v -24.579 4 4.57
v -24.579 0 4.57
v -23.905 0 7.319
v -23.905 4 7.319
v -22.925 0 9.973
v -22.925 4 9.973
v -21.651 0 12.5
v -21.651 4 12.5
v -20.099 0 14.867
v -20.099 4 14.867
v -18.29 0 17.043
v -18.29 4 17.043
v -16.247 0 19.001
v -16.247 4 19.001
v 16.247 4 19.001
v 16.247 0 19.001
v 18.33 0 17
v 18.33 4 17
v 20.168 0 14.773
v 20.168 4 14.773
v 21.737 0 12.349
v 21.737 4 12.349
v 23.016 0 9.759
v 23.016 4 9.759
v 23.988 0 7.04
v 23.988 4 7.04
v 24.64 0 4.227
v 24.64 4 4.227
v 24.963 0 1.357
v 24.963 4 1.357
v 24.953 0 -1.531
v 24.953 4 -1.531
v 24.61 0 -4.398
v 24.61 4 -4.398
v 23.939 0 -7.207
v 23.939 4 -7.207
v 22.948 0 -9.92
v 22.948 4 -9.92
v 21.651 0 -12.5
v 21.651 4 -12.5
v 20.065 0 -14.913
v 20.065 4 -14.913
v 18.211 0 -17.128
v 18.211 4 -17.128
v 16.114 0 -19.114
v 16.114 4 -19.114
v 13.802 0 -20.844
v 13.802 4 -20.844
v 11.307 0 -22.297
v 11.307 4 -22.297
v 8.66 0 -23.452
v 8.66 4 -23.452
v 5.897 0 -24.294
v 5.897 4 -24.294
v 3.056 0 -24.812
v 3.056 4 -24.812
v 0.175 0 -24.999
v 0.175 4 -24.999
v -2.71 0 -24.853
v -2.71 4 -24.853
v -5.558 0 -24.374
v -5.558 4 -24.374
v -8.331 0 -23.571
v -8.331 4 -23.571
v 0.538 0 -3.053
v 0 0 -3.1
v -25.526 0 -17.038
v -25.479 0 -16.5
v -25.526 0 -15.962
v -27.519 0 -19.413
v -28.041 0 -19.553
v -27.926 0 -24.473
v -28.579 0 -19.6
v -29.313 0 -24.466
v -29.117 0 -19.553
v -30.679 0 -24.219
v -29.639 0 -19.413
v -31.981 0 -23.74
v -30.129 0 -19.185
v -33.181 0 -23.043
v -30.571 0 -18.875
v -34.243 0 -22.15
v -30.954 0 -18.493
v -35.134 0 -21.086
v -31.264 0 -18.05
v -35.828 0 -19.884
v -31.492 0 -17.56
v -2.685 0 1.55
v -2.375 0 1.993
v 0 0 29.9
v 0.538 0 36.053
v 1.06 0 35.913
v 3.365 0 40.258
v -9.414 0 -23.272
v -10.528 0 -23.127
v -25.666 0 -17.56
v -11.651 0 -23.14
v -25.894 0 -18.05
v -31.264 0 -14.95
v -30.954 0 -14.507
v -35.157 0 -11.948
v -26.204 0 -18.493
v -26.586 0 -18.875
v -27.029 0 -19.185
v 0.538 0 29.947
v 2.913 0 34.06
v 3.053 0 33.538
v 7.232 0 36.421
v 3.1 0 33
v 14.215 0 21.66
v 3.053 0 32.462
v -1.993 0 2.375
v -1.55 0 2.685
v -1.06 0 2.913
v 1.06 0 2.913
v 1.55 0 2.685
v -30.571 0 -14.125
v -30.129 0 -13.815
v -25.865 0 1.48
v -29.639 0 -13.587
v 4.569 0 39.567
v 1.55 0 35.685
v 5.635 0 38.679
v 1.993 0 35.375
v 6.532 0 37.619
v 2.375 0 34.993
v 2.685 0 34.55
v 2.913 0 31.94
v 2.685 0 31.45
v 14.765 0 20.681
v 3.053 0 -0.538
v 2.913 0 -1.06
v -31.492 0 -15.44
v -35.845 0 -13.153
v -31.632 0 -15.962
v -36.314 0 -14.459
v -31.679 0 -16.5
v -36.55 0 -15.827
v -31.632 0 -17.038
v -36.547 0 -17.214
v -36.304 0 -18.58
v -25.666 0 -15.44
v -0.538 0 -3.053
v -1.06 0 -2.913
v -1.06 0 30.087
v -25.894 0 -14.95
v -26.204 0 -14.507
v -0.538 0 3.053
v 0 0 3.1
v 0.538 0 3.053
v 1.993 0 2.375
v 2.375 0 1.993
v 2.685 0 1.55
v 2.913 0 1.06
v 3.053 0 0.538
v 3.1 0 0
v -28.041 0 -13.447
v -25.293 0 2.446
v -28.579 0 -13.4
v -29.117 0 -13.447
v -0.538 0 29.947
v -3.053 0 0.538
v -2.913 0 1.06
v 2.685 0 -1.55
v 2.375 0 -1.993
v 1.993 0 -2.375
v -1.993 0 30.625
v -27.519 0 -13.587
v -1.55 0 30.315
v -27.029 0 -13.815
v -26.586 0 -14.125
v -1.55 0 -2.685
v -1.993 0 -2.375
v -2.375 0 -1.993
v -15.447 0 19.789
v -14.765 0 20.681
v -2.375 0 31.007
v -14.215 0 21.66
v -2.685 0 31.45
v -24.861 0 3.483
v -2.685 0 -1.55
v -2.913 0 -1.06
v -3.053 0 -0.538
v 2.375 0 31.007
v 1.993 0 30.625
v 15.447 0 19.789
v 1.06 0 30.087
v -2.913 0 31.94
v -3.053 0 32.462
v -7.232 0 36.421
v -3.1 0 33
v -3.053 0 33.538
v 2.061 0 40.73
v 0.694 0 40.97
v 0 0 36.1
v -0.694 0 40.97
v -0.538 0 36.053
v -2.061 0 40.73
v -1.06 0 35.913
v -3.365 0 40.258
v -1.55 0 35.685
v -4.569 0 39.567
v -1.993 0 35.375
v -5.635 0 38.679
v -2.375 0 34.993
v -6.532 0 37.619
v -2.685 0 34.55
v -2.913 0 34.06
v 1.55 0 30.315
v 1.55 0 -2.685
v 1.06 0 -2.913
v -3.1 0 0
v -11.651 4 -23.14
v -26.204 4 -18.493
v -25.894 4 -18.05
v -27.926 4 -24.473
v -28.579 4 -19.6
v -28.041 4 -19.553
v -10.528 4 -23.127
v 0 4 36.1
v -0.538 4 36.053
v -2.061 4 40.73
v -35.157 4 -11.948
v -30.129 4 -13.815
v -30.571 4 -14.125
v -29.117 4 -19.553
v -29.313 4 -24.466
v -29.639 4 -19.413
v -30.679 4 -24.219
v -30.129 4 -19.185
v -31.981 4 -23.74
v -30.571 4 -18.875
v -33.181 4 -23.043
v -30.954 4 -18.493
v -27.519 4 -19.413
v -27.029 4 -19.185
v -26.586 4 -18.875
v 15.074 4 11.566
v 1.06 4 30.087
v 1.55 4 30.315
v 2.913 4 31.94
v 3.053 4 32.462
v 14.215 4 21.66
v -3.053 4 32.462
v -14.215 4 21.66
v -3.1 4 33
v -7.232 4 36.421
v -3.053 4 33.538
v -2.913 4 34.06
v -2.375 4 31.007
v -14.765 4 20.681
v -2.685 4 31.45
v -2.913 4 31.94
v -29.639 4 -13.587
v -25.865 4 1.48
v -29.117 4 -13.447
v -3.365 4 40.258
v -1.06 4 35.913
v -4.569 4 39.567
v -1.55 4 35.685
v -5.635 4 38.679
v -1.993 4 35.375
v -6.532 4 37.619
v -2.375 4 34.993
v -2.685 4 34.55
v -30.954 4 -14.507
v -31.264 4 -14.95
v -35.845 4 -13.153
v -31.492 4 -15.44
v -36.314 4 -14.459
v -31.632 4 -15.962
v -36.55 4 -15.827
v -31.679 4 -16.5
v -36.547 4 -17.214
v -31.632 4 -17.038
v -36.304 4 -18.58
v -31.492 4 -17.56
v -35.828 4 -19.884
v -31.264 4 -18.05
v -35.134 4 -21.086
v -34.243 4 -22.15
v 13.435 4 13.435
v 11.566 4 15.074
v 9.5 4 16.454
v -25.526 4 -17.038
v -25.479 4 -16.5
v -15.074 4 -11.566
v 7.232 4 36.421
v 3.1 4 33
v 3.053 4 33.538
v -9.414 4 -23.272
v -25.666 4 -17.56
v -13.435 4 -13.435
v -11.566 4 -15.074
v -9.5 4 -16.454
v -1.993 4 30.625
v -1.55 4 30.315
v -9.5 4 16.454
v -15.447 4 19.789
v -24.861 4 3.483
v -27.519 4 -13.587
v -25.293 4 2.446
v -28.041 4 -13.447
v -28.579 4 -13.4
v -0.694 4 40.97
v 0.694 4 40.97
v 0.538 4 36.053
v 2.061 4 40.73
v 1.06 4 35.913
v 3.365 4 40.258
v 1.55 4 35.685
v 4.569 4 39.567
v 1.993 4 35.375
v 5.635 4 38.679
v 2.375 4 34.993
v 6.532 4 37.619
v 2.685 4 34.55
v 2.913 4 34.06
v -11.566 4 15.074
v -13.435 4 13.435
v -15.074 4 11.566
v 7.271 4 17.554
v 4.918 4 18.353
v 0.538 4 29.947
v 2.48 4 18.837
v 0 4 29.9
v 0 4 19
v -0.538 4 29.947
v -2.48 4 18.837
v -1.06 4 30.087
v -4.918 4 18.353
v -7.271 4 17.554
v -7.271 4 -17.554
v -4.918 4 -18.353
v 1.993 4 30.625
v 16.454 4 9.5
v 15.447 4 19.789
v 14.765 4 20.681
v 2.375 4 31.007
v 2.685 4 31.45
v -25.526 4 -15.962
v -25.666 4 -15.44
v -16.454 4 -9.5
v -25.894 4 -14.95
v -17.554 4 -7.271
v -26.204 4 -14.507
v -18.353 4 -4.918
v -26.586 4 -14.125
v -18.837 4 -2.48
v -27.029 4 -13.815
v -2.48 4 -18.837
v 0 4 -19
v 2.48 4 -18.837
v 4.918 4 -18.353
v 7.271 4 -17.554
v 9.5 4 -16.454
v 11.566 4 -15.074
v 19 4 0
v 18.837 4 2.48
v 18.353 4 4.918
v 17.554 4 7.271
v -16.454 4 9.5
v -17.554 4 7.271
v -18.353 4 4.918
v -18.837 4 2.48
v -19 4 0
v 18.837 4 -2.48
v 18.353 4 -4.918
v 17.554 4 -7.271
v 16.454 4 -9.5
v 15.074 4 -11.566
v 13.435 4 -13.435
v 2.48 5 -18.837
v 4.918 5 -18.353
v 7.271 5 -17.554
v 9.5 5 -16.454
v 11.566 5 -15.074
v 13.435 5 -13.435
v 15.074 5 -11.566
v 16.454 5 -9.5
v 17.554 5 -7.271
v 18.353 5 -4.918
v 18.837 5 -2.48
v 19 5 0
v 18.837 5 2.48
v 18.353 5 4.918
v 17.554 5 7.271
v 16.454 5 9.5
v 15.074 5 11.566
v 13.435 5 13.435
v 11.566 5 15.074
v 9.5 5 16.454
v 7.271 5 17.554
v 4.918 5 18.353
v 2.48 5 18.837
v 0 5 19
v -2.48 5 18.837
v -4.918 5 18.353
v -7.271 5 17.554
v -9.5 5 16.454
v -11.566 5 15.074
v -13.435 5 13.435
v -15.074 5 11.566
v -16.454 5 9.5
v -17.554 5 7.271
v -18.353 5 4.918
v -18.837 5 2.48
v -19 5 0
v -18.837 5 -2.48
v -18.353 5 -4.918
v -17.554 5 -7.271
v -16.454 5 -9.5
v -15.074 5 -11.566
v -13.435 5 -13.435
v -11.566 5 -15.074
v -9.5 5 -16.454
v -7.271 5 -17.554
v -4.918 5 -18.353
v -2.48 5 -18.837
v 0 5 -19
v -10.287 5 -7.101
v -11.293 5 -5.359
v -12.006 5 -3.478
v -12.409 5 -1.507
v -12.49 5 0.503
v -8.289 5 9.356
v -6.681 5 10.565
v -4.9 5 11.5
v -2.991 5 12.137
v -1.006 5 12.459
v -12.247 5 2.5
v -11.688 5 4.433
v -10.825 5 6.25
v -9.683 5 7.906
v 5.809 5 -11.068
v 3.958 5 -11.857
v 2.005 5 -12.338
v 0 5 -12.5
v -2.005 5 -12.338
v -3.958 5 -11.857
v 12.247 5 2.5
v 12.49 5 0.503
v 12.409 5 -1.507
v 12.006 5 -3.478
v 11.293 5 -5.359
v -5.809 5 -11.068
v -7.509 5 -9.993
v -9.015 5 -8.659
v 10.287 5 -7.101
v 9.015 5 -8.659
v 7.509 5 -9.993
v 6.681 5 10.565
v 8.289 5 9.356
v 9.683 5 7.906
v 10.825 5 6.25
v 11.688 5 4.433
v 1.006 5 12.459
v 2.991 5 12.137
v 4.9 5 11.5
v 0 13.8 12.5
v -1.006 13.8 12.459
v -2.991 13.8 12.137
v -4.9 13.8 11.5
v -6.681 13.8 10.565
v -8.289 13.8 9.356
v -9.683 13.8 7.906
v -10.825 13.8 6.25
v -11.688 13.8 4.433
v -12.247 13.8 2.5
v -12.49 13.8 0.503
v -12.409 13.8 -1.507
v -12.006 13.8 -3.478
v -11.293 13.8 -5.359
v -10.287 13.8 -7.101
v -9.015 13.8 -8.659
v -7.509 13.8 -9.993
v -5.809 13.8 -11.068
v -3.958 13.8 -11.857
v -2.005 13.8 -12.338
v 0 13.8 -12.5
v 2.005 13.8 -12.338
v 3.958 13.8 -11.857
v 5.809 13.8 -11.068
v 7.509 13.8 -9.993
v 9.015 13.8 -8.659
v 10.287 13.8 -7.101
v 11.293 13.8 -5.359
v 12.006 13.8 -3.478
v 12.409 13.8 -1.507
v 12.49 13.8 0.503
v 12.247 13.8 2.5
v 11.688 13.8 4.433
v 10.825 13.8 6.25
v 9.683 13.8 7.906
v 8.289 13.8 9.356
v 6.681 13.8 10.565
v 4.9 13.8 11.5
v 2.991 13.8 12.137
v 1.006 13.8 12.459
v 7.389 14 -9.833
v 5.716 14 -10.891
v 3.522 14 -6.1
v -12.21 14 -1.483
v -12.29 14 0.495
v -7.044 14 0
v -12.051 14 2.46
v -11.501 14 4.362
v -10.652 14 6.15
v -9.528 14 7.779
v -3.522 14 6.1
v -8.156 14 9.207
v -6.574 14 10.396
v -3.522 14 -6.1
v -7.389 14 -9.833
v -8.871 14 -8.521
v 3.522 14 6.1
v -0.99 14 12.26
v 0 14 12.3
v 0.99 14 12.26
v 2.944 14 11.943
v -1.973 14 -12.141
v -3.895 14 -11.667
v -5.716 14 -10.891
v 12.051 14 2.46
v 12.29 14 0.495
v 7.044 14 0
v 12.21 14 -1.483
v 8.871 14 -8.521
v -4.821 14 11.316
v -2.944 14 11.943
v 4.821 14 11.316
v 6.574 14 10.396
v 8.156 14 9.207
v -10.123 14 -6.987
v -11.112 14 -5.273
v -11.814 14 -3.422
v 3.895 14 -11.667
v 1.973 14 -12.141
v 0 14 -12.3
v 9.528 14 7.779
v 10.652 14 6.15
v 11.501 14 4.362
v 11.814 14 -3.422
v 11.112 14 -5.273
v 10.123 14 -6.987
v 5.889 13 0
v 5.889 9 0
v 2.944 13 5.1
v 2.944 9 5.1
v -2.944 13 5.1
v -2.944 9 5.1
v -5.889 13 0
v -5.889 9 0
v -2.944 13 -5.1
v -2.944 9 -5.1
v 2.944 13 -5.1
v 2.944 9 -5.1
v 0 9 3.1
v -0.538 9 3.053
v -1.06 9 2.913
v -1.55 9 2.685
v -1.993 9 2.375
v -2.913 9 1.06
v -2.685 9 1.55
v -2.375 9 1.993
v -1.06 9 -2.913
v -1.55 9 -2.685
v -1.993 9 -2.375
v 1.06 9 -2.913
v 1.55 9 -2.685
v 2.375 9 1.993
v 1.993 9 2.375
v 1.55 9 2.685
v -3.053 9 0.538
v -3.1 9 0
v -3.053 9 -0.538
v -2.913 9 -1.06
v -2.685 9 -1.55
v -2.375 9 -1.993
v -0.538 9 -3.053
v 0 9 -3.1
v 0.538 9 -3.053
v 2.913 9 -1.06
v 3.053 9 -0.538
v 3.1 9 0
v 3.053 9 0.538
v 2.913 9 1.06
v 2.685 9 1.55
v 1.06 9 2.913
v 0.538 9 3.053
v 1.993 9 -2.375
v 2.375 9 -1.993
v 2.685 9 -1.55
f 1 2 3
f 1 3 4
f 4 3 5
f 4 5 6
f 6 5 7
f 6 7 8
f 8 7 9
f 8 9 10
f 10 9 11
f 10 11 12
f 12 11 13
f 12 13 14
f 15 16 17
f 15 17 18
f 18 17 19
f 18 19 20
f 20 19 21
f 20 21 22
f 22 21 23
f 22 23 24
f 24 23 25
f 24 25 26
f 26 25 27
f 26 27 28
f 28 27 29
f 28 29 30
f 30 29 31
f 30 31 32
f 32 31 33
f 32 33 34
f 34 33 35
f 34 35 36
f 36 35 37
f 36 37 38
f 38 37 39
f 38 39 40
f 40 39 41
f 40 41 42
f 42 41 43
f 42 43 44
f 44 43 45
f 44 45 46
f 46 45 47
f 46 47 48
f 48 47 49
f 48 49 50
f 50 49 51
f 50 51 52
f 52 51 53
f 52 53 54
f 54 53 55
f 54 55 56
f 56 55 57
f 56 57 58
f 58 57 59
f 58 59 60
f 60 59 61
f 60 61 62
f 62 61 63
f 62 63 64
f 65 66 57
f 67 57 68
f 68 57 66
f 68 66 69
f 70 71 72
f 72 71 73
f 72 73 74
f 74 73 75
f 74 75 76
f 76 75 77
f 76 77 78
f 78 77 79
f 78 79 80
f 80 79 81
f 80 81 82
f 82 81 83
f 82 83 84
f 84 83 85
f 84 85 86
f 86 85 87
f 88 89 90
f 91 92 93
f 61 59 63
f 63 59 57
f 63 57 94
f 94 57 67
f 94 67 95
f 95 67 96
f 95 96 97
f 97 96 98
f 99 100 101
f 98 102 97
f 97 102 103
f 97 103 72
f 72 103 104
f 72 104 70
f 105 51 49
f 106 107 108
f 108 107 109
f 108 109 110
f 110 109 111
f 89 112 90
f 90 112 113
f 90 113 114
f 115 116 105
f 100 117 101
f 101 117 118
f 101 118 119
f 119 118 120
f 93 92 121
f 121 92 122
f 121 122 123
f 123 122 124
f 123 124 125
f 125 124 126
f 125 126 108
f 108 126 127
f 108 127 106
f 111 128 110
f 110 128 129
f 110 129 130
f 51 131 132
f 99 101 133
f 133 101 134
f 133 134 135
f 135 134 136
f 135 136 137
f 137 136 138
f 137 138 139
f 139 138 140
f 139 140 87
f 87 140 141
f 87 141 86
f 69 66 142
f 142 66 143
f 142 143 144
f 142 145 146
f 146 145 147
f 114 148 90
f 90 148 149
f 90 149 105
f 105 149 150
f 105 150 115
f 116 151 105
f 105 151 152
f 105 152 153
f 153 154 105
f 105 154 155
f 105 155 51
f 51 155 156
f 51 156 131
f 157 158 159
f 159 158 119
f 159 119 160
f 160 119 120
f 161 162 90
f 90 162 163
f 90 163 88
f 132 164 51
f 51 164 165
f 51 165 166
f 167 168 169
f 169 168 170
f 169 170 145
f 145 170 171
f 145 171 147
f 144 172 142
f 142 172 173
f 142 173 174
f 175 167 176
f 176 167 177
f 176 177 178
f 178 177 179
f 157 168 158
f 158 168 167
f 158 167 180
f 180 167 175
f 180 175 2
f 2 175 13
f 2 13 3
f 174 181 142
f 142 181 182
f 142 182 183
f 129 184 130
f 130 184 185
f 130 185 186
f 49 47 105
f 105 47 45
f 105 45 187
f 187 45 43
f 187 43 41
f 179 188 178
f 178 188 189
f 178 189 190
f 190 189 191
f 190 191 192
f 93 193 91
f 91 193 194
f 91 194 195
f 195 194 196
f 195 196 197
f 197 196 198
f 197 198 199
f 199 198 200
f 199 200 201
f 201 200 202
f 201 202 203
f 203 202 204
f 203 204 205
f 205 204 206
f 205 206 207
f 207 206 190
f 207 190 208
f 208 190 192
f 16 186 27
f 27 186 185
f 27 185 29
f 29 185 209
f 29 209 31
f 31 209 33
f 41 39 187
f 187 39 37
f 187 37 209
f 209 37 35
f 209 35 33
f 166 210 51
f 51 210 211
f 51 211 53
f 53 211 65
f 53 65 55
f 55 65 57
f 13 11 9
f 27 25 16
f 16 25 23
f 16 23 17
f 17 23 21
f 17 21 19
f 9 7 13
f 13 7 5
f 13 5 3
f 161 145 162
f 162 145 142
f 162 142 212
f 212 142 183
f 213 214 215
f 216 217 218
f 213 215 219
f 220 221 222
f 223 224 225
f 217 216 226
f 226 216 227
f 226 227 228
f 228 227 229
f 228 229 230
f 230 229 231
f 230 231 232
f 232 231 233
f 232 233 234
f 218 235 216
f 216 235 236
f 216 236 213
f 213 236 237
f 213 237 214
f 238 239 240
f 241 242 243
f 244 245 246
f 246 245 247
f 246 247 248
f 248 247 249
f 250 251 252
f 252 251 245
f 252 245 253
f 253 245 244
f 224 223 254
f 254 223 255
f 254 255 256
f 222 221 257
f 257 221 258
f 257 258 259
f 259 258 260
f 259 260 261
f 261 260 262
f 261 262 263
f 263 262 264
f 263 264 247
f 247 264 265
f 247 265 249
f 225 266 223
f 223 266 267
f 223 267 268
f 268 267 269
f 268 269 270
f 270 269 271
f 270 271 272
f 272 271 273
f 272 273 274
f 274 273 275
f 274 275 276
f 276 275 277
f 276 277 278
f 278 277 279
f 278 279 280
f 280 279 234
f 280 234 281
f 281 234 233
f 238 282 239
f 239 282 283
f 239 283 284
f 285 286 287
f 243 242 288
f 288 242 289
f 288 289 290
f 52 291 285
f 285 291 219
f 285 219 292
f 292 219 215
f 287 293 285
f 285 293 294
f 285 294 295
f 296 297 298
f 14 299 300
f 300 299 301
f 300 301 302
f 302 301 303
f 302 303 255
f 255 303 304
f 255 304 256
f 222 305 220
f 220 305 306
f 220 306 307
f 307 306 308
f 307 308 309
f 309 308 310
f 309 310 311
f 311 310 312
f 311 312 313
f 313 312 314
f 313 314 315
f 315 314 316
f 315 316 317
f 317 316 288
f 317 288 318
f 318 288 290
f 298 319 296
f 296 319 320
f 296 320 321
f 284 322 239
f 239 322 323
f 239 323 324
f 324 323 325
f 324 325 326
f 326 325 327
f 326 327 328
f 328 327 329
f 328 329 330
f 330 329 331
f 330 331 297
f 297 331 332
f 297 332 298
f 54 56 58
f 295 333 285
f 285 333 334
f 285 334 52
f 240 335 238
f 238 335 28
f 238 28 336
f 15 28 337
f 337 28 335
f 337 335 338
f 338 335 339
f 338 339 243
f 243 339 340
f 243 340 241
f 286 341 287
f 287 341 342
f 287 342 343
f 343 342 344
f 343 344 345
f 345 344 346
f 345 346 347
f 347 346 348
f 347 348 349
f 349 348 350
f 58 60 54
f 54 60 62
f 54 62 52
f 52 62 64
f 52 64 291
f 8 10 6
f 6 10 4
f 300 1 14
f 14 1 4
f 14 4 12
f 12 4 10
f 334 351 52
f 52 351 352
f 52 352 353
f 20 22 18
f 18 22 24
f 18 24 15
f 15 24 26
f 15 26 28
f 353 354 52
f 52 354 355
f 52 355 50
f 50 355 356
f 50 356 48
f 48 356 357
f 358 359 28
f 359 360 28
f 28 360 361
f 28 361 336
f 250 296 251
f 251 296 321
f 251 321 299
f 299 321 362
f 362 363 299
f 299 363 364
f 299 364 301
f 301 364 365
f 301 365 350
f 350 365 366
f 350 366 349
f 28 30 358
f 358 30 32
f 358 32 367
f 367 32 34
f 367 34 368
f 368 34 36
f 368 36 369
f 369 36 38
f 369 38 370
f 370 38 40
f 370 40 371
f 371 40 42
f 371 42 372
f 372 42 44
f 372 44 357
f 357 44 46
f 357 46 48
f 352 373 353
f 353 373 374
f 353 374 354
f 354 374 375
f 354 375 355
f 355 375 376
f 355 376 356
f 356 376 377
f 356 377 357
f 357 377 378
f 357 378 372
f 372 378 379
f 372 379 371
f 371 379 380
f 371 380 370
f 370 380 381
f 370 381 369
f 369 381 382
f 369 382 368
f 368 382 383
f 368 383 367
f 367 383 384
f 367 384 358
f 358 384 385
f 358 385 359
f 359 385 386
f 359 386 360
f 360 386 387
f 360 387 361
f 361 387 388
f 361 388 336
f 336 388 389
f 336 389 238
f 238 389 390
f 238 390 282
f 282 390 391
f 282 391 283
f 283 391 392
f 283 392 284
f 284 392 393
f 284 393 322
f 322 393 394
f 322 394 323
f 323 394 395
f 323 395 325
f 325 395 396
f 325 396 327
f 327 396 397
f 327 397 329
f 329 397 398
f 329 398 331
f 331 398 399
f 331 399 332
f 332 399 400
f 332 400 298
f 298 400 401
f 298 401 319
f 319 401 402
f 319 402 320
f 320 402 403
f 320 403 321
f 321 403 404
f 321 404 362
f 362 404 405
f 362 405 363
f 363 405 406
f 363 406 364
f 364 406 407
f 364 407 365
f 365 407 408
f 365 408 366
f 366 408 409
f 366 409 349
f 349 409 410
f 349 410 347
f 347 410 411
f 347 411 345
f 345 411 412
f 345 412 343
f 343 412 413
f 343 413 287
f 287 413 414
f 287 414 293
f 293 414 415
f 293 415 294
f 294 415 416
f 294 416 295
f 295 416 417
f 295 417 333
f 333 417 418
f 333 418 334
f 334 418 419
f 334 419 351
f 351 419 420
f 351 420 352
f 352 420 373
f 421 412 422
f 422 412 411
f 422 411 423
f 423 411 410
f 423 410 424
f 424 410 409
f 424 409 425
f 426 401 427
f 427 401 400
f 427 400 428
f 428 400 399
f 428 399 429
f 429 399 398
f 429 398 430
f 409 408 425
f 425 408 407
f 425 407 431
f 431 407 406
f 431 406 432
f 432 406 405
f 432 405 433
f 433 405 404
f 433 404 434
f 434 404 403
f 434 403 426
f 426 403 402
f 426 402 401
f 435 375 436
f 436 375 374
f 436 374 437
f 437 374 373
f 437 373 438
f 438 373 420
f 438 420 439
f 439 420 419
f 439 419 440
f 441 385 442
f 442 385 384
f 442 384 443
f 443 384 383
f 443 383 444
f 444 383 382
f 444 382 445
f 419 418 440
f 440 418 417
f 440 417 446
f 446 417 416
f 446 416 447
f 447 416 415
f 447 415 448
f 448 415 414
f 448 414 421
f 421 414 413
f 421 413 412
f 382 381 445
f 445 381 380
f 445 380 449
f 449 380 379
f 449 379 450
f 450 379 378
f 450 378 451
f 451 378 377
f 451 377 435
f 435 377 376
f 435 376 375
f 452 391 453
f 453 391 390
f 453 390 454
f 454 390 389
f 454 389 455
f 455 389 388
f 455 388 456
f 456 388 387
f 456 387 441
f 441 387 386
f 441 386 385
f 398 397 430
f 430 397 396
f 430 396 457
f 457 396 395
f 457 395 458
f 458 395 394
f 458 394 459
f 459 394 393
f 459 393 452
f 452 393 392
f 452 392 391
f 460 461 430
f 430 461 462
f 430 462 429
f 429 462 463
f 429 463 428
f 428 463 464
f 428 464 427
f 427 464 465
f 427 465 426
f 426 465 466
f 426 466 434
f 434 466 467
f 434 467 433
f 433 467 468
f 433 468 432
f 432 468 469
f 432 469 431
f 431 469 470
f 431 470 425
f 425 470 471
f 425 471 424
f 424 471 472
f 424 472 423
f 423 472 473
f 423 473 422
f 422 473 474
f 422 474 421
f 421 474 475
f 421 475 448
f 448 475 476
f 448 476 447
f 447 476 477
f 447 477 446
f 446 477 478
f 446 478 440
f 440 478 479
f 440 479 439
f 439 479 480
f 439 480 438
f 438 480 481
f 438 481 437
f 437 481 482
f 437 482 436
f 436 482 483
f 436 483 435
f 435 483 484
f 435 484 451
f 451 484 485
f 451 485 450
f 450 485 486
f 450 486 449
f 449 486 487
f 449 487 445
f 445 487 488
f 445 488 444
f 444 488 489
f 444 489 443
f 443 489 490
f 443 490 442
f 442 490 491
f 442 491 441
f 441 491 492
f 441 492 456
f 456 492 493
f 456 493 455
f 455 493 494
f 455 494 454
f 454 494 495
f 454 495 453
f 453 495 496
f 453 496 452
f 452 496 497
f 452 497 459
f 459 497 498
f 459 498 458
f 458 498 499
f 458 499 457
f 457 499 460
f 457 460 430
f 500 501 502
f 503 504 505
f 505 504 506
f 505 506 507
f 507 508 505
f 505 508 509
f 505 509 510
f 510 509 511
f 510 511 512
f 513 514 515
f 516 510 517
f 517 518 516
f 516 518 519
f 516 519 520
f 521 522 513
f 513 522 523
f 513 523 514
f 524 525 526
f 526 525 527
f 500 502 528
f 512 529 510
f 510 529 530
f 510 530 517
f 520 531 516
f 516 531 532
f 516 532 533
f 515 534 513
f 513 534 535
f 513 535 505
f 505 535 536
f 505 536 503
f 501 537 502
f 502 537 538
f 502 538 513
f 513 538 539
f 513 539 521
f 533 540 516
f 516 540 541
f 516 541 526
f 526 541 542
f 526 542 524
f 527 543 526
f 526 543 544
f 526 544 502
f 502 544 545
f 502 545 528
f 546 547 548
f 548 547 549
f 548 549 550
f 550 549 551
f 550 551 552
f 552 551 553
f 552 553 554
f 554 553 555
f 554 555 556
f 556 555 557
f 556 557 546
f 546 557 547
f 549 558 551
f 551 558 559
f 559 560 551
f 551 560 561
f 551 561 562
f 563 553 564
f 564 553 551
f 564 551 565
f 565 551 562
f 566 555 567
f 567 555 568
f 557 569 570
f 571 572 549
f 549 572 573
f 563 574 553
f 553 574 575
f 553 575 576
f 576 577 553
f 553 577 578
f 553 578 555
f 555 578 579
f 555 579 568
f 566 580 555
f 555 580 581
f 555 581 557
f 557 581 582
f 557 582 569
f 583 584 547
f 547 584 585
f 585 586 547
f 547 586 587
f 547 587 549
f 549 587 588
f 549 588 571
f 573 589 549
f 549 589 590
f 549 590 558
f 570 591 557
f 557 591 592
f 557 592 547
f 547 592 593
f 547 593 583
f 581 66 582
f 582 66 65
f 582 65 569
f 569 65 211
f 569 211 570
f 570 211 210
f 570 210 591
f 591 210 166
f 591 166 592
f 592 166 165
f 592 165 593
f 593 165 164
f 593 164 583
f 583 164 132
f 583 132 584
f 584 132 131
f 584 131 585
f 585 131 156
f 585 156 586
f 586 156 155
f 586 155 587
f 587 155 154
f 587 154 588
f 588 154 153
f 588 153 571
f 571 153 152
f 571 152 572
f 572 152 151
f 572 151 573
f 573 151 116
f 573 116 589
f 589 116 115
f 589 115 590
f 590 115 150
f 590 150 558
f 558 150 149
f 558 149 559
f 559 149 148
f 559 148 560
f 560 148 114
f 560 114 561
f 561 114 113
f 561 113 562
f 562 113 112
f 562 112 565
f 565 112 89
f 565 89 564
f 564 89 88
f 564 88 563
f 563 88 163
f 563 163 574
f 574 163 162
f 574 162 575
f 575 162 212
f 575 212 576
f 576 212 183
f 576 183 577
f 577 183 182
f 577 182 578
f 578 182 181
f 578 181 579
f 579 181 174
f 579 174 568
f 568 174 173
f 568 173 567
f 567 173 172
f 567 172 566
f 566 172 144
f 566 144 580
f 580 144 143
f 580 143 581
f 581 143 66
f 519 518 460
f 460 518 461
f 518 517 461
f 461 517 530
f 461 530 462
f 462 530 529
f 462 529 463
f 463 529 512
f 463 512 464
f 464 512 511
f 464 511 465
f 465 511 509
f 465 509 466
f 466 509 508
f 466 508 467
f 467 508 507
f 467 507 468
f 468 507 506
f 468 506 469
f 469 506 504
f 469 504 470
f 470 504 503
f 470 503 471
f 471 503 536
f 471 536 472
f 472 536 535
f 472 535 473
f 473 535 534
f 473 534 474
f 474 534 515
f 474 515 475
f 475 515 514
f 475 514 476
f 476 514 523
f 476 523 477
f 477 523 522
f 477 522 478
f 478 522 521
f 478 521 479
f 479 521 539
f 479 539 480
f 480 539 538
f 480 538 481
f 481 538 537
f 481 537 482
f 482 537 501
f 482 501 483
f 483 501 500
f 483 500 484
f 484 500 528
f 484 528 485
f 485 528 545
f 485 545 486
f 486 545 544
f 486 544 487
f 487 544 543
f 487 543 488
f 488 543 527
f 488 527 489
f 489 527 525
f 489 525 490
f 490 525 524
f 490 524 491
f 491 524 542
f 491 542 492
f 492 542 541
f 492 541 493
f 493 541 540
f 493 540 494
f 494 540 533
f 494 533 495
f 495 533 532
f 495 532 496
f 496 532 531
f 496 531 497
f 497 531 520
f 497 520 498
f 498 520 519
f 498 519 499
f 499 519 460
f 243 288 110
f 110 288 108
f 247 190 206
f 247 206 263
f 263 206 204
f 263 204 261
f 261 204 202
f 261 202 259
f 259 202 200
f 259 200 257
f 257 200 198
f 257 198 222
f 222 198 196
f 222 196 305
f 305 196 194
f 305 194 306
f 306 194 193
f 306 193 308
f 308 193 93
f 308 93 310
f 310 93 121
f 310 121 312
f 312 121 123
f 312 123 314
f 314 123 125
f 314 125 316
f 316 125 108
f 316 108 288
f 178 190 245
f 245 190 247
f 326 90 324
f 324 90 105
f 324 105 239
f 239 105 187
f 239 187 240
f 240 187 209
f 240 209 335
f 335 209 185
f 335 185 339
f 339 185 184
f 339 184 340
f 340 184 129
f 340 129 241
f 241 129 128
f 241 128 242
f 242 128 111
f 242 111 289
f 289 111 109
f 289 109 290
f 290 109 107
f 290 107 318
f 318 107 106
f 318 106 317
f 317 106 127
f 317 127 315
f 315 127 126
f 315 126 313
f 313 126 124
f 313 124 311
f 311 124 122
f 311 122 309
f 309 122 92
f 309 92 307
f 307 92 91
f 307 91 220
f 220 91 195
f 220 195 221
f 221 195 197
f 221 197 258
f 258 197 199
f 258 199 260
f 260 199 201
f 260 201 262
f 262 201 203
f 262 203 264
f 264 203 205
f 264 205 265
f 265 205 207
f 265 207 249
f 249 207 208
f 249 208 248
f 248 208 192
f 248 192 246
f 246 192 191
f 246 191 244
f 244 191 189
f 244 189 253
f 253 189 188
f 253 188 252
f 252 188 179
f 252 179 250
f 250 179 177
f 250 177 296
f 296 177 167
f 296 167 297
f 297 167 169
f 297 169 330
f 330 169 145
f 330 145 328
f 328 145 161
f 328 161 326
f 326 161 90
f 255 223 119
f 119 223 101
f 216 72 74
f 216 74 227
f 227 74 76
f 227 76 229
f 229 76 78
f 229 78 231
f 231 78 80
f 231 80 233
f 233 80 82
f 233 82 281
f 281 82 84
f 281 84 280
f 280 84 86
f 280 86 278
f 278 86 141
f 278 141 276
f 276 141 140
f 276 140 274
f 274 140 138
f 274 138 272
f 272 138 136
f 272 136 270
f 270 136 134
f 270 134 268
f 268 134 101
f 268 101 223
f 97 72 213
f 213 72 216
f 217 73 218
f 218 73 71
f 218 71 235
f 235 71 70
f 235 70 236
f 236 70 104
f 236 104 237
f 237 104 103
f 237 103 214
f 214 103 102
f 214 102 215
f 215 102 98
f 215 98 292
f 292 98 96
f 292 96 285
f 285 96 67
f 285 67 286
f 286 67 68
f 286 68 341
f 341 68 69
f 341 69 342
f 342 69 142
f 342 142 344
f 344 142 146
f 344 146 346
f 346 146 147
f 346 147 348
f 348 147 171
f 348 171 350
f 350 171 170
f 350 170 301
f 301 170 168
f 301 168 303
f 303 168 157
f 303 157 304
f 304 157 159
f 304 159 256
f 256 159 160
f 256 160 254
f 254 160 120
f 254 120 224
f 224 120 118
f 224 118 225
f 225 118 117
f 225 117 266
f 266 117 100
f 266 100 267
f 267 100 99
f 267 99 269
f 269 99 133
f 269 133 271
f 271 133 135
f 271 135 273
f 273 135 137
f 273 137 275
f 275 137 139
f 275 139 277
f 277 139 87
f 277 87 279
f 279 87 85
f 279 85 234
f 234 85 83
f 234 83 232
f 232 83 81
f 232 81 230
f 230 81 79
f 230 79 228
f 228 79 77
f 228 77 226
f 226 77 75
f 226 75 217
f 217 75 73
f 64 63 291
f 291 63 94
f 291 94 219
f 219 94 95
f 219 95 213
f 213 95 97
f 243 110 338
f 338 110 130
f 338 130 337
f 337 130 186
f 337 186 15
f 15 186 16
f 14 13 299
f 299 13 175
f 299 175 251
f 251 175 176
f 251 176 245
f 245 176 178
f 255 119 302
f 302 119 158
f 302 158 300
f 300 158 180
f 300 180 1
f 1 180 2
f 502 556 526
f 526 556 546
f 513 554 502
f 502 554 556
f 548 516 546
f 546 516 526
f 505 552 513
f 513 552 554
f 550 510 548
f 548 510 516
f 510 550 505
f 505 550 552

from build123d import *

# Parameters (mm, degrees)
CUT_EXTRUDE1_DEPTH  = 5
SKETCH4_R           = 3.1
CUT_EXTRUDE2_DEPTH  = 39.026306684
CHAMFER1_SIZE       = 0.2
BOSS_EXTRUDE1_START = 4
SKETCH6_R           = 3.1
BOSS_EXTRUDE1_DEPTH = 4
CIRPATTERN1_COUNT   = 2
CIRPATTERN1_ANGLE   = 120
FILLET2_R           = 8
CHAMFER2_SIZE       = 1


with BuildPart() as part:
    # Sketch2 → Revolve1 (revolve)
    with BuildSketch(Plane.XY, mode=Mode.PRIVATE) as revolve1_sk:
        Polygon((0, 0), (25, 0), (25, 4), (19, 4), (19, 5), (12.5, 5), (12.5, 14), (0, 14), align=None)
    revolve(revolve1_sk.sketch.rotate(Axis((0, 0, 0), (0, 1, 0)), 90), axis=Axis((0, 0, 0), (0, 1, 0)))

    # Sketch3 → Cut-Extrude1 (cut)
    with BuildSketch(Plane(origin=(0, 14, 0), x_dir=(1, 0, 0), z_dir=(0, 1, 0))):
        Polygon((5.888972746, 0), (2.944486373, 5.1), (-2.944486373, 5.1), (-5.888972746, 0), (-2.944486373, -5.1), (2.944486373, -5.1), align=None)
    extrude(amount=-CUT_EXTRUDE1_DEPTH, mode=Mode.SUBTRACT)

    # Sketch4 → Cut-Extrude2 (cut, through all)
    with BuildSketch(Plane(origin=(0, 0, 0), x_dir=(1, 0, 0), z_dir=(0, 1, 0))):
        with Locations(Location((0, 0, 0), (0, 0, 90))):
            Circle(SKETCH4_R)
    extrude(amount=CUT_EXTRUDE2_DEPTH, mode=Mode.SUBTRACT)

    # Chamfer1
    chamfer1_edges = [part.edges().sort_by_distance(p)[0] for p in [
        (0, 14, 12.5),
    ]]
    chamfer(chamfer1_edges, length=CHAMFER1_SIZE)

    # Sketch6 → Boss-Extrude1 (add)
    with BuildSketch(Plane(origin=(0, 0, 0), x_dir=(1, 0, 0), z_dir=(0, 1, 0)).offset(BOSS_EXTRUDE1_START)):
        with BuildLine():
            ThreePointArc((15, -20), (0, -25), (-15, -20))
            Line((-15, -20), (-7.231608683, -36.421086941))
            ThreePointArc((-7.231608683, -36.421086941), (0, -41), (7.231608683, -36.421086941))
            Line((7.231608683, -36.421086941), (15, -20))
        make_face()
        with Locations(Location((0, -33, 0), (0, 0, 270))):
            Circle(SKETCH6_R, mode=Mode.SUBTRACT)
    boss_extrude1 = extrude(amount=-BOSS_EXTRUDE1_DEPTH)

    # CirPattern1: Boss-Extrude1 ×2 about axis
    cirpattern1_axis = Axis((0, 0, 0), (0, -1, 0))
    for i in range(1, CIRPATTERN1_COUNT):
        add(boss_extrude1.rotate(cirpattern1_axis, i * CIRPATTERN1_ANGLE / (CIRPATTERN1_COUNT - 1)))

    # Fillet2
    fillet2_edges = [part.edges().sort_by_distance(p)[0] for p in [
        (-15, 2, 20),
        (15, 2, 20),
        (-9.820508076, 2, -22.990381057),
        (-24.820508076, 2, 2.990381057),
    ]]
    fillet(fillet2_edges, radius=FILLET2_R)

    # Chamfer2
    chamfer2_edges = [part.edges().sort_by_distance(p)[0] for p in [
        (4.416729559, 14, 2.55),
        (4.416729559, 14, -2.55),
        (0, 14, -5.1),
        (-4.416729559, 14, -2.55),
        (-4.416729559, 14, 2.55),
        (0, 14, 5.1),
    ]]
    chamfer(chamfer2_edges, length=CHAMFER2_SIZE)


solid = part.part
